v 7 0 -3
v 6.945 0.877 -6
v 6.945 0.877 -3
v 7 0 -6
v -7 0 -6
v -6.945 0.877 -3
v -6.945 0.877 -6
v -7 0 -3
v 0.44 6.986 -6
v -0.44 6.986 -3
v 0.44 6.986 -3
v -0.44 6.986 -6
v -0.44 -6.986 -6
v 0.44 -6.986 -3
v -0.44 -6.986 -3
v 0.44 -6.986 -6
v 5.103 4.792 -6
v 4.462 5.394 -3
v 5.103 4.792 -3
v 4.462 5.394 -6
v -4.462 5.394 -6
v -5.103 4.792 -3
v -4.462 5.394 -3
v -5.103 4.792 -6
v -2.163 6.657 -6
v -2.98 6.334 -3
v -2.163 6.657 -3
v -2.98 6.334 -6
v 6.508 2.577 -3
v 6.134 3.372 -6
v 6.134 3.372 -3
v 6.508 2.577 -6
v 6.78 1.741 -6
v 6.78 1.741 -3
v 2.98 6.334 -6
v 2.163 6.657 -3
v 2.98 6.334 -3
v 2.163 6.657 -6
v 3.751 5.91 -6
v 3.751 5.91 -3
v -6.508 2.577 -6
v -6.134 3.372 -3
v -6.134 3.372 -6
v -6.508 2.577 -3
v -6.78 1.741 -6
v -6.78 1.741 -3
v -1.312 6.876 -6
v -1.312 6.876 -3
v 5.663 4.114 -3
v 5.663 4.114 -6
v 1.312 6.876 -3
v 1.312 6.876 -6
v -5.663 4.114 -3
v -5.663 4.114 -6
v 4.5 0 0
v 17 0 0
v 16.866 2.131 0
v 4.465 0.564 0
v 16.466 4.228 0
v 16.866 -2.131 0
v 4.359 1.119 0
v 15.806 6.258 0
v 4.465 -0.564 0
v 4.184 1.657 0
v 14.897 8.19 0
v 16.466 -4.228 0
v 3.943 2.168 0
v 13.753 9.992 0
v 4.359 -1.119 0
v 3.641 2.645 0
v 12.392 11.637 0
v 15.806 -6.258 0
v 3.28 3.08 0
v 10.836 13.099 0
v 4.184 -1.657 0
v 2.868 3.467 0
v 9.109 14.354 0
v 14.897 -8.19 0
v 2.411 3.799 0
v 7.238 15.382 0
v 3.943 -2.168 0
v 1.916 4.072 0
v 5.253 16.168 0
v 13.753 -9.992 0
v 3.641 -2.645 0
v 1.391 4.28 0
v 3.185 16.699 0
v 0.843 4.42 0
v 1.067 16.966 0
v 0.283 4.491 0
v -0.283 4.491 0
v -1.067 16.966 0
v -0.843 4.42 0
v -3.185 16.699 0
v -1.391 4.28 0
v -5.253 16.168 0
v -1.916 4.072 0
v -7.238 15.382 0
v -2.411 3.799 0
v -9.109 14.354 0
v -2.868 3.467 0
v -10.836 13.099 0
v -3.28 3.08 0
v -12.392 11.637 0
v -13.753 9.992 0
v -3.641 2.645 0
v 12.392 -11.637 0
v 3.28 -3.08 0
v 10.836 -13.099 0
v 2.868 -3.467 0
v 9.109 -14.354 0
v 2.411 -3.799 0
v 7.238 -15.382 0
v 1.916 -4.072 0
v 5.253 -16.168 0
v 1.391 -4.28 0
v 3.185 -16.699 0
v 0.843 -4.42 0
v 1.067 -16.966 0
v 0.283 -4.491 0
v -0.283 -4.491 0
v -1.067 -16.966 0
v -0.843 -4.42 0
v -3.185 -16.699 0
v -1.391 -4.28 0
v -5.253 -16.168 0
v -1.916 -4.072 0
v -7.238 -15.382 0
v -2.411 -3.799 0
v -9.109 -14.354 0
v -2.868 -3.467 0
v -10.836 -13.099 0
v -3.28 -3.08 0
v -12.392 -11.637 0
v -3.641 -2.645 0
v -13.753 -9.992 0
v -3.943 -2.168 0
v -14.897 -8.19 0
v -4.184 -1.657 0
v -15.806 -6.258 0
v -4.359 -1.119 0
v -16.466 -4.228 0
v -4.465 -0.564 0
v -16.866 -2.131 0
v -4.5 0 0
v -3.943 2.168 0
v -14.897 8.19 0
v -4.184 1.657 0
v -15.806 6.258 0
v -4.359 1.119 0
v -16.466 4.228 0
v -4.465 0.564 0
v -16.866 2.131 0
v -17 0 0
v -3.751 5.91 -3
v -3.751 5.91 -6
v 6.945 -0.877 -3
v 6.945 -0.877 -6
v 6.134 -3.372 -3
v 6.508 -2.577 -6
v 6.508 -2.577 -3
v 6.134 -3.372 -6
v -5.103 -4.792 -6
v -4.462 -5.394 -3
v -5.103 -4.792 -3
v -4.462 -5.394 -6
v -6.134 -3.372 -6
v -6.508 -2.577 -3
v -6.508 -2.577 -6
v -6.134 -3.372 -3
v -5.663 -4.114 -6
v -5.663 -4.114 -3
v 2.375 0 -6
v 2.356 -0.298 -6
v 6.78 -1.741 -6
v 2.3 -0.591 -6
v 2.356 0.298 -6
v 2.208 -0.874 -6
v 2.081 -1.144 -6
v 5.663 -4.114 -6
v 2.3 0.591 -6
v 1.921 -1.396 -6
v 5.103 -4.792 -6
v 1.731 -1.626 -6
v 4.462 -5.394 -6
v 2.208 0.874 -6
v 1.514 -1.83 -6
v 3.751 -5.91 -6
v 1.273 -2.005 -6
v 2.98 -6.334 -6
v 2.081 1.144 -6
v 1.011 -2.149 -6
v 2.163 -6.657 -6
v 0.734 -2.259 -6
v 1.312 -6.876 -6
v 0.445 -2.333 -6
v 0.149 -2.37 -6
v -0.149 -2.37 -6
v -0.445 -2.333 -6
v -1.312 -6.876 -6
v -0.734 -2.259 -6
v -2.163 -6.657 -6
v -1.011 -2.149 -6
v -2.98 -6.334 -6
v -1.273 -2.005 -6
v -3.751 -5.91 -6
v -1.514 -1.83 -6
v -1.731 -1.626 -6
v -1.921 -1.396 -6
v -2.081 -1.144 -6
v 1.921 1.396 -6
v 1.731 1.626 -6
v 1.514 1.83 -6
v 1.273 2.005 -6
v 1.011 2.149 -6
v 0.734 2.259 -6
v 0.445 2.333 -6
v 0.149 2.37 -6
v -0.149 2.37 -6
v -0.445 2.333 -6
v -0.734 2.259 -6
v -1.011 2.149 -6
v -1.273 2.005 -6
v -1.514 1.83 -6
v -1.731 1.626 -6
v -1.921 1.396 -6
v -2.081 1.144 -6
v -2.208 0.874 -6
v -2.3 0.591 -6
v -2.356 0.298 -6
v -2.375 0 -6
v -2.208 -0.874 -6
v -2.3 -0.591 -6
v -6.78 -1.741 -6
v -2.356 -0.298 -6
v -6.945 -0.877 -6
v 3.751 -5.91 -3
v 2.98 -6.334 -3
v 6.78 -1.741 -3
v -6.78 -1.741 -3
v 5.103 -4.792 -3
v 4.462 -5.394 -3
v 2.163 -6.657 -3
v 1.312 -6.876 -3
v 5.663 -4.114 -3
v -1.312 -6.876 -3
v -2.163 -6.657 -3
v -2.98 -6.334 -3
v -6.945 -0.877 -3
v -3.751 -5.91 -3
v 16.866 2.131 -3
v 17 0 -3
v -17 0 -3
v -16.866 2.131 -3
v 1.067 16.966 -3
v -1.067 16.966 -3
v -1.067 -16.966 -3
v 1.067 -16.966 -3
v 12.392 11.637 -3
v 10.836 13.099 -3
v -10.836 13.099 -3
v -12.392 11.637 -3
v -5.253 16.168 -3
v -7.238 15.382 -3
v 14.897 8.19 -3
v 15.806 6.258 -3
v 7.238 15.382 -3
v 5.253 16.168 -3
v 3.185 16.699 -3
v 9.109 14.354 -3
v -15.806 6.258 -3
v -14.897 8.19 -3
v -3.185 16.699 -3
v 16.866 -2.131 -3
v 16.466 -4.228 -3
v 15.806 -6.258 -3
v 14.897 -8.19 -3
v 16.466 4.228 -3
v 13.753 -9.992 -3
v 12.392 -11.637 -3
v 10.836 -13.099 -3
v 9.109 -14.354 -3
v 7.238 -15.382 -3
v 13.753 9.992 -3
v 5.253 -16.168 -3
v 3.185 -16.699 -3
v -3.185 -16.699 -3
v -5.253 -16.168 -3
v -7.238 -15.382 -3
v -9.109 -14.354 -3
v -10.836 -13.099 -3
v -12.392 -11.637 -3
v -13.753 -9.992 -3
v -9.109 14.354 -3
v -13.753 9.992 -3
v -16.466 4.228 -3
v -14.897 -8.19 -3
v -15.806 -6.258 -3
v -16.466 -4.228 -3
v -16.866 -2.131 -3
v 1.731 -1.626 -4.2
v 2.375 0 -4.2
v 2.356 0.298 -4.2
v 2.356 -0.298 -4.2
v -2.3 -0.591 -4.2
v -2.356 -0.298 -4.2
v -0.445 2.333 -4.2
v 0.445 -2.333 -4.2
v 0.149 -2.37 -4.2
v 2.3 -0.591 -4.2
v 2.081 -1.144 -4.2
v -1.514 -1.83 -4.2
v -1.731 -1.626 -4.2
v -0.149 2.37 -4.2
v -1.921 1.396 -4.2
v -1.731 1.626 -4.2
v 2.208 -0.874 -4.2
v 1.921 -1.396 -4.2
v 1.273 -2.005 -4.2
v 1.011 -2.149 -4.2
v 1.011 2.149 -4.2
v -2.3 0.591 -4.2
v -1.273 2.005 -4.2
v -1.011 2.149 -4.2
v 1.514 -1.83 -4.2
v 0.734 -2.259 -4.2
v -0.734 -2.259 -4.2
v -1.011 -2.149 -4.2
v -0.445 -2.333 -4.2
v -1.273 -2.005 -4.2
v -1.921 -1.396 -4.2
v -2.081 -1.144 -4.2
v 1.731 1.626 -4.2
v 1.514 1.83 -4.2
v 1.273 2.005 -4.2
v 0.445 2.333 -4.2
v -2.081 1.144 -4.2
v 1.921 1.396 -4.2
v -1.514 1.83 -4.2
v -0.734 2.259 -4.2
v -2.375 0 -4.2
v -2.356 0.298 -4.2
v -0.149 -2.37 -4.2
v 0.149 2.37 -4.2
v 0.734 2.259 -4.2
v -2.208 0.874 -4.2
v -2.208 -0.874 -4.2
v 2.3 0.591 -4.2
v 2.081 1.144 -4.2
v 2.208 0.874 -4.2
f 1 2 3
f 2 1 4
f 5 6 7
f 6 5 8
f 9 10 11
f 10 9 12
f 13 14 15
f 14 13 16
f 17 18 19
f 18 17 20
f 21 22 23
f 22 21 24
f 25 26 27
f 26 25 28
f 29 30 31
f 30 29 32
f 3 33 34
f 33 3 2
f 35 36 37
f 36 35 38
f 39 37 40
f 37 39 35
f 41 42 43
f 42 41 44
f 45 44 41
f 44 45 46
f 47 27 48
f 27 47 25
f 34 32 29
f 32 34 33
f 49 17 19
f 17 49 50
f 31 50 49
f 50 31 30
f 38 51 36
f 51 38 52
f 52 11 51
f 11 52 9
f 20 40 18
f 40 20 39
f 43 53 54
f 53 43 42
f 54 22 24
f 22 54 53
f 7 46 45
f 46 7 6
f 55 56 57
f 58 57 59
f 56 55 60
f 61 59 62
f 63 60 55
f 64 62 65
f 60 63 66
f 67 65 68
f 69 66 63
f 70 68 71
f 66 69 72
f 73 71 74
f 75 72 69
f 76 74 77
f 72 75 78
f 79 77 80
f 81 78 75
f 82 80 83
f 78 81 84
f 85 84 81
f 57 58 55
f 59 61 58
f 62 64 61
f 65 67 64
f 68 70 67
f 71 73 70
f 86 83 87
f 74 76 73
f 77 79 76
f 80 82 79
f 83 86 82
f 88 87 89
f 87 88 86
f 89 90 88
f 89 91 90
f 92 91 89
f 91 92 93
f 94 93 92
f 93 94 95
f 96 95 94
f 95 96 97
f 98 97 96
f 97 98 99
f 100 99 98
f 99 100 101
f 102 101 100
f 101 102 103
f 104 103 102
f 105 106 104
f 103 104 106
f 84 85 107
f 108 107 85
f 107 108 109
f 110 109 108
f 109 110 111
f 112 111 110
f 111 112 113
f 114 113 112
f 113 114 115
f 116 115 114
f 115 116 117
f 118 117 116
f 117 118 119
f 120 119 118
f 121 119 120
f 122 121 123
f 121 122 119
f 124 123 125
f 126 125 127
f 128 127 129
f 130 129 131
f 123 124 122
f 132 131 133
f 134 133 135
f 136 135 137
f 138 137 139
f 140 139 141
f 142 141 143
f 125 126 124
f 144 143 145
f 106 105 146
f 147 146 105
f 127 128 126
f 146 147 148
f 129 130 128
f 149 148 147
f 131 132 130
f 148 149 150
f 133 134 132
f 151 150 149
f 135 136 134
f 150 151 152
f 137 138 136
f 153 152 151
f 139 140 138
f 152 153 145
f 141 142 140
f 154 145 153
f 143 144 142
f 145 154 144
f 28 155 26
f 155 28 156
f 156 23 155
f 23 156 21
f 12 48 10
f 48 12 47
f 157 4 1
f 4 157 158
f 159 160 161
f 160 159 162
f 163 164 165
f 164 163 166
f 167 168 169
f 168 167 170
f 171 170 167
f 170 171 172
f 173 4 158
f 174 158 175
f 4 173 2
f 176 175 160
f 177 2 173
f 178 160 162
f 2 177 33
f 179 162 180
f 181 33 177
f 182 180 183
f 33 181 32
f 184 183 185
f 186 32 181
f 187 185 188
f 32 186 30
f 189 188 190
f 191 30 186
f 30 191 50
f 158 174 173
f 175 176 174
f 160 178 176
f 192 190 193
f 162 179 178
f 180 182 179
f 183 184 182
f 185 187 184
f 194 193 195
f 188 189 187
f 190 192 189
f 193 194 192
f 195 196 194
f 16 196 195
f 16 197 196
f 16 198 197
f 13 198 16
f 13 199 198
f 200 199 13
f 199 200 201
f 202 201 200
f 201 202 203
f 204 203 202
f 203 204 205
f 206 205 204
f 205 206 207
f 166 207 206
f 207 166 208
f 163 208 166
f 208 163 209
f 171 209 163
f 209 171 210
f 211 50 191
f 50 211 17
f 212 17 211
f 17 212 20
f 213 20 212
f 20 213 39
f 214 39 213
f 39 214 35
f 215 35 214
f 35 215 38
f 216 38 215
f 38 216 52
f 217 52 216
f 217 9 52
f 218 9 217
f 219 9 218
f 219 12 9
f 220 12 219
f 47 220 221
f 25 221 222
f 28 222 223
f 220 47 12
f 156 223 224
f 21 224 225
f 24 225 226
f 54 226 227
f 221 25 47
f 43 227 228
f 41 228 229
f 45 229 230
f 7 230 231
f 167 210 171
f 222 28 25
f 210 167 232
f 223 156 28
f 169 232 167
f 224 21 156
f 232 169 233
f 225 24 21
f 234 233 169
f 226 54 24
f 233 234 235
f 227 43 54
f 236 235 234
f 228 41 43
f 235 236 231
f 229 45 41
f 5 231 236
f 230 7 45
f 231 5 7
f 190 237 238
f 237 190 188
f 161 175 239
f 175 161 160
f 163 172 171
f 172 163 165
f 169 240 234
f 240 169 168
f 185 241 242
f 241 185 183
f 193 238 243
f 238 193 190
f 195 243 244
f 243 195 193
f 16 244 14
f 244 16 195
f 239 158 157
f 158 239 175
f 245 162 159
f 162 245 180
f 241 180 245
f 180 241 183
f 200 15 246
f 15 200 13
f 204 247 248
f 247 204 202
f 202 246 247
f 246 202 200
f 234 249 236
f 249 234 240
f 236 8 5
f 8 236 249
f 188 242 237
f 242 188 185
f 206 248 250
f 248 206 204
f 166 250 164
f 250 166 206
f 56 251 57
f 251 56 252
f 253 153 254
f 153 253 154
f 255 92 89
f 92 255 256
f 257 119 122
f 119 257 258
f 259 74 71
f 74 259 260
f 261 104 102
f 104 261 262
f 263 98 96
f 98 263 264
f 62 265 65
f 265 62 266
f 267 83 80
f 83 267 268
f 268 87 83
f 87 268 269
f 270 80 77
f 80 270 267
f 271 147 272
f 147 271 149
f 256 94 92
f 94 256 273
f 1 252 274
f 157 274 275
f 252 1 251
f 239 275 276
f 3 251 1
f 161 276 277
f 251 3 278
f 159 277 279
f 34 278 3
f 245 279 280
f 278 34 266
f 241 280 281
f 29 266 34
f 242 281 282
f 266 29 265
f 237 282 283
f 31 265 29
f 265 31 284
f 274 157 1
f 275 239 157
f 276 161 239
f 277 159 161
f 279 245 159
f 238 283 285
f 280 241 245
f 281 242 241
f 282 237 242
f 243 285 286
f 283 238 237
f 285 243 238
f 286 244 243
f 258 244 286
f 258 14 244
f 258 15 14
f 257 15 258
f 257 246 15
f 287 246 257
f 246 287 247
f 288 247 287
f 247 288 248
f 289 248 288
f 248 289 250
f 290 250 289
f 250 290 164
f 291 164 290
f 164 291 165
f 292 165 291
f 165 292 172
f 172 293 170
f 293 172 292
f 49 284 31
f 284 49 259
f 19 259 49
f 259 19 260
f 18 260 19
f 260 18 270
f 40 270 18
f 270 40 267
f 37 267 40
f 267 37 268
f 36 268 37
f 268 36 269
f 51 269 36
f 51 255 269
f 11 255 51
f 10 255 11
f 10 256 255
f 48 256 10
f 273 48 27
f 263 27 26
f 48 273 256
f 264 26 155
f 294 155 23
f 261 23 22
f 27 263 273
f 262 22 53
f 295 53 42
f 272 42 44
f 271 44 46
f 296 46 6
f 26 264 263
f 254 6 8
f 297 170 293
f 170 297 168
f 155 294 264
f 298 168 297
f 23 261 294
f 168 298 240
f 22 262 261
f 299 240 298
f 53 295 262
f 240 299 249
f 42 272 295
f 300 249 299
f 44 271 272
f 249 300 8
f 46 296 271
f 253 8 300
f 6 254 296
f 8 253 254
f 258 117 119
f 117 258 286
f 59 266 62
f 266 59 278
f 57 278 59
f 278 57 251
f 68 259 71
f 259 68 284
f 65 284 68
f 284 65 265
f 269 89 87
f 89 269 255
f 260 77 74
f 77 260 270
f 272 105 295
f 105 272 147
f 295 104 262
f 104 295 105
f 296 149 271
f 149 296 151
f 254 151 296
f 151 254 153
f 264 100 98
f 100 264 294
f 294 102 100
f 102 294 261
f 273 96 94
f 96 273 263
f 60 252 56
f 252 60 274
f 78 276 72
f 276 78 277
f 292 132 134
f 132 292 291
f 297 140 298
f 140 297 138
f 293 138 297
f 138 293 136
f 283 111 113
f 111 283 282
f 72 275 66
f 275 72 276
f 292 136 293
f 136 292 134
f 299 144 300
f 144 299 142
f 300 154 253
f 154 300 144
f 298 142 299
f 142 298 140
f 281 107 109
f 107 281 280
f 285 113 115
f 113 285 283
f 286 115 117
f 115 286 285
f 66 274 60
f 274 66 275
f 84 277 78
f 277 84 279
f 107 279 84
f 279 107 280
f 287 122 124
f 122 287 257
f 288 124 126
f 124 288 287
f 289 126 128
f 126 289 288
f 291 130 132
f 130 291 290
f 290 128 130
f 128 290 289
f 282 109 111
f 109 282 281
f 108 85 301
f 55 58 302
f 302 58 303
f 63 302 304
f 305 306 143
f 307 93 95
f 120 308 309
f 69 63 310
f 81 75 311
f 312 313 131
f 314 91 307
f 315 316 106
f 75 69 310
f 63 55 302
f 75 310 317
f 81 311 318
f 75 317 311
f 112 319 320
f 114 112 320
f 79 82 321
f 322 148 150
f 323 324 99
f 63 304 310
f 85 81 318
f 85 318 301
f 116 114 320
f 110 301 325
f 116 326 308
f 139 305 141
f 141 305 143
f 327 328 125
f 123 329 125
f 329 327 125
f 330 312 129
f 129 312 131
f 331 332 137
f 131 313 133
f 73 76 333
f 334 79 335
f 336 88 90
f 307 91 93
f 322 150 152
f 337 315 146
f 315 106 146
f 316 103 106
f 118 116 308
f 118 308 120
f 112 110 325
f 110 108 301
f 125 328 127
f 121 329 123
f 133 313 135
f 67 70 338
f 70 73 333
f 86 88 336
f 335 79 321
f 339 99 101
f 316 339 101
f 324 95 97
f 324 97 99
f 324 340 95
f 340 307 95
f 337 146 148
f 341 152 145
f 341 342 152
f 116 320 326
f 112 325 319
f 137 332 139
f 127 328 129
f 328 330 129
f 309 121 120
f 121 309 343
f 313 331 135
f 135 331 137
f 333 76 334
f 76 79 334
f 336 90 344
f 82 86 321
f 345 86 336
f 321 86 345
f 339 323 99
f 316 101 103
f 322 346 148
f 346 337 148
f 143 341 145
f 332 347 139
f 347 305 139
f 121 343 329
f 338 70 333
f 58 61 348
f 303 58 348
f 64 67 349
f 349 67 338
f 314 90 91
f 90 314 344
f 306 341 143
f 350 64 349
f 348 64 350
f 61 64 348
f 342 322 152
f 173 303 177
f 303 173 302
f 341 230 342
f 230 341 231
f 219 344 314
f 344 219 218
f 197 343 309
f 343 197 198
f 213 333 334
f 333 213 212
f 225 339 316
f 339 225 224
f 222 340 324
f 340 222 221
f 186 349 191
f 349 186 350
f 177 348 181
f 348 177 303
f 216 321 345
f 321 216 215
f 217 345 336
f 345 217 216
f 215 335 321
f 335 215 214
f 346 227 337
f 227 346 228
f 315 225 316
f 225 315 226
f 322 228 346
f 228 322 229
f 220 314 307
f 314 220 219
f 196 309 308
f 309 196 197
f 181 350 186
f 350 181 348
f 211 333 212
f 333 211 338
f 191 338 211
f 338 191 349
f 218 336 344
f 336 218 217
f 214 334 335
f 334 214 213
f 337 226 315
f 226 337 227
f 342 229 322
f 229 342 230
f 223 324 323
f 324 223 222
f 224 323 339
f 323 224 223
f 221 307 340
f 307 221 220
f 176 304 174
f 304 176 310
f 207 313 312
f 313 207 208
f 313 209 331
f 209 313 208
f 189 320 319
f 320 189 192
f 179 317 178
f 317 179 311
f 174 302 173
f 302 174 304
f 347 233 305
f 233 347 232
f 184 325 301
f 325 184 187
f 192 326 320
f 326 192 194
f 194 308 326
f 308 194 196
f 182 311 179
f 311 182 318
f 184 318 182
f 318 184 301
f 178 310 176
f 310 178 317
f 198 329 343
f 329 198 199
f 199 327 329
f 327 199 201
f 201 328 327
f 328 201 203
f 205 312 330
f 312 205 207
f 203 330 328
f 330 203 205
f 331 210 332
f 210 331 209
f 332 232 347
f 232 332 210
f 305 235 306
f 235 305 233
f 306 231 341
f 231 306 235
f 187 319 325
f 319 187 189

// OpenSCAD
$fn = 50;


difference() {
	union() {
		translate(v = [0, 0, -6.0000000000]) {
			cylinder(h = 6, r = 7.0000000000);
		}
		translate(v = [0, 0, -3.0000000000]) {
			cylinder(h = 3, r = 17.0000000000);
		}
	}
	union() {
		translate(v = [0, 0, 0]) {
			rotate(a = [0, 0, 0]) {
				difference() {
					union() {
						#translate(v = [0, 0, -6.0000000000]) {
							cylinder(h = 6, r = 2.2500000000);
						}
						#translate(v = [0, 0, -4.2000000000]) {
							cylinder(h = 4.2000000000, r = 7.0000000000, r1 = 2.3750000000, r2 = 4.5000000000);
						}
						#translate(v = [0, 0, -6.0000000000]) {
							cylinder(h = 6, r = 2.3750000000);
						}
						#translate(v = [0, 0, -6.0000000000]) {
							cylinder(h = 6, r = 2.2500000000);
						}
					}
					union();
				}
			}
		}
	}
}
